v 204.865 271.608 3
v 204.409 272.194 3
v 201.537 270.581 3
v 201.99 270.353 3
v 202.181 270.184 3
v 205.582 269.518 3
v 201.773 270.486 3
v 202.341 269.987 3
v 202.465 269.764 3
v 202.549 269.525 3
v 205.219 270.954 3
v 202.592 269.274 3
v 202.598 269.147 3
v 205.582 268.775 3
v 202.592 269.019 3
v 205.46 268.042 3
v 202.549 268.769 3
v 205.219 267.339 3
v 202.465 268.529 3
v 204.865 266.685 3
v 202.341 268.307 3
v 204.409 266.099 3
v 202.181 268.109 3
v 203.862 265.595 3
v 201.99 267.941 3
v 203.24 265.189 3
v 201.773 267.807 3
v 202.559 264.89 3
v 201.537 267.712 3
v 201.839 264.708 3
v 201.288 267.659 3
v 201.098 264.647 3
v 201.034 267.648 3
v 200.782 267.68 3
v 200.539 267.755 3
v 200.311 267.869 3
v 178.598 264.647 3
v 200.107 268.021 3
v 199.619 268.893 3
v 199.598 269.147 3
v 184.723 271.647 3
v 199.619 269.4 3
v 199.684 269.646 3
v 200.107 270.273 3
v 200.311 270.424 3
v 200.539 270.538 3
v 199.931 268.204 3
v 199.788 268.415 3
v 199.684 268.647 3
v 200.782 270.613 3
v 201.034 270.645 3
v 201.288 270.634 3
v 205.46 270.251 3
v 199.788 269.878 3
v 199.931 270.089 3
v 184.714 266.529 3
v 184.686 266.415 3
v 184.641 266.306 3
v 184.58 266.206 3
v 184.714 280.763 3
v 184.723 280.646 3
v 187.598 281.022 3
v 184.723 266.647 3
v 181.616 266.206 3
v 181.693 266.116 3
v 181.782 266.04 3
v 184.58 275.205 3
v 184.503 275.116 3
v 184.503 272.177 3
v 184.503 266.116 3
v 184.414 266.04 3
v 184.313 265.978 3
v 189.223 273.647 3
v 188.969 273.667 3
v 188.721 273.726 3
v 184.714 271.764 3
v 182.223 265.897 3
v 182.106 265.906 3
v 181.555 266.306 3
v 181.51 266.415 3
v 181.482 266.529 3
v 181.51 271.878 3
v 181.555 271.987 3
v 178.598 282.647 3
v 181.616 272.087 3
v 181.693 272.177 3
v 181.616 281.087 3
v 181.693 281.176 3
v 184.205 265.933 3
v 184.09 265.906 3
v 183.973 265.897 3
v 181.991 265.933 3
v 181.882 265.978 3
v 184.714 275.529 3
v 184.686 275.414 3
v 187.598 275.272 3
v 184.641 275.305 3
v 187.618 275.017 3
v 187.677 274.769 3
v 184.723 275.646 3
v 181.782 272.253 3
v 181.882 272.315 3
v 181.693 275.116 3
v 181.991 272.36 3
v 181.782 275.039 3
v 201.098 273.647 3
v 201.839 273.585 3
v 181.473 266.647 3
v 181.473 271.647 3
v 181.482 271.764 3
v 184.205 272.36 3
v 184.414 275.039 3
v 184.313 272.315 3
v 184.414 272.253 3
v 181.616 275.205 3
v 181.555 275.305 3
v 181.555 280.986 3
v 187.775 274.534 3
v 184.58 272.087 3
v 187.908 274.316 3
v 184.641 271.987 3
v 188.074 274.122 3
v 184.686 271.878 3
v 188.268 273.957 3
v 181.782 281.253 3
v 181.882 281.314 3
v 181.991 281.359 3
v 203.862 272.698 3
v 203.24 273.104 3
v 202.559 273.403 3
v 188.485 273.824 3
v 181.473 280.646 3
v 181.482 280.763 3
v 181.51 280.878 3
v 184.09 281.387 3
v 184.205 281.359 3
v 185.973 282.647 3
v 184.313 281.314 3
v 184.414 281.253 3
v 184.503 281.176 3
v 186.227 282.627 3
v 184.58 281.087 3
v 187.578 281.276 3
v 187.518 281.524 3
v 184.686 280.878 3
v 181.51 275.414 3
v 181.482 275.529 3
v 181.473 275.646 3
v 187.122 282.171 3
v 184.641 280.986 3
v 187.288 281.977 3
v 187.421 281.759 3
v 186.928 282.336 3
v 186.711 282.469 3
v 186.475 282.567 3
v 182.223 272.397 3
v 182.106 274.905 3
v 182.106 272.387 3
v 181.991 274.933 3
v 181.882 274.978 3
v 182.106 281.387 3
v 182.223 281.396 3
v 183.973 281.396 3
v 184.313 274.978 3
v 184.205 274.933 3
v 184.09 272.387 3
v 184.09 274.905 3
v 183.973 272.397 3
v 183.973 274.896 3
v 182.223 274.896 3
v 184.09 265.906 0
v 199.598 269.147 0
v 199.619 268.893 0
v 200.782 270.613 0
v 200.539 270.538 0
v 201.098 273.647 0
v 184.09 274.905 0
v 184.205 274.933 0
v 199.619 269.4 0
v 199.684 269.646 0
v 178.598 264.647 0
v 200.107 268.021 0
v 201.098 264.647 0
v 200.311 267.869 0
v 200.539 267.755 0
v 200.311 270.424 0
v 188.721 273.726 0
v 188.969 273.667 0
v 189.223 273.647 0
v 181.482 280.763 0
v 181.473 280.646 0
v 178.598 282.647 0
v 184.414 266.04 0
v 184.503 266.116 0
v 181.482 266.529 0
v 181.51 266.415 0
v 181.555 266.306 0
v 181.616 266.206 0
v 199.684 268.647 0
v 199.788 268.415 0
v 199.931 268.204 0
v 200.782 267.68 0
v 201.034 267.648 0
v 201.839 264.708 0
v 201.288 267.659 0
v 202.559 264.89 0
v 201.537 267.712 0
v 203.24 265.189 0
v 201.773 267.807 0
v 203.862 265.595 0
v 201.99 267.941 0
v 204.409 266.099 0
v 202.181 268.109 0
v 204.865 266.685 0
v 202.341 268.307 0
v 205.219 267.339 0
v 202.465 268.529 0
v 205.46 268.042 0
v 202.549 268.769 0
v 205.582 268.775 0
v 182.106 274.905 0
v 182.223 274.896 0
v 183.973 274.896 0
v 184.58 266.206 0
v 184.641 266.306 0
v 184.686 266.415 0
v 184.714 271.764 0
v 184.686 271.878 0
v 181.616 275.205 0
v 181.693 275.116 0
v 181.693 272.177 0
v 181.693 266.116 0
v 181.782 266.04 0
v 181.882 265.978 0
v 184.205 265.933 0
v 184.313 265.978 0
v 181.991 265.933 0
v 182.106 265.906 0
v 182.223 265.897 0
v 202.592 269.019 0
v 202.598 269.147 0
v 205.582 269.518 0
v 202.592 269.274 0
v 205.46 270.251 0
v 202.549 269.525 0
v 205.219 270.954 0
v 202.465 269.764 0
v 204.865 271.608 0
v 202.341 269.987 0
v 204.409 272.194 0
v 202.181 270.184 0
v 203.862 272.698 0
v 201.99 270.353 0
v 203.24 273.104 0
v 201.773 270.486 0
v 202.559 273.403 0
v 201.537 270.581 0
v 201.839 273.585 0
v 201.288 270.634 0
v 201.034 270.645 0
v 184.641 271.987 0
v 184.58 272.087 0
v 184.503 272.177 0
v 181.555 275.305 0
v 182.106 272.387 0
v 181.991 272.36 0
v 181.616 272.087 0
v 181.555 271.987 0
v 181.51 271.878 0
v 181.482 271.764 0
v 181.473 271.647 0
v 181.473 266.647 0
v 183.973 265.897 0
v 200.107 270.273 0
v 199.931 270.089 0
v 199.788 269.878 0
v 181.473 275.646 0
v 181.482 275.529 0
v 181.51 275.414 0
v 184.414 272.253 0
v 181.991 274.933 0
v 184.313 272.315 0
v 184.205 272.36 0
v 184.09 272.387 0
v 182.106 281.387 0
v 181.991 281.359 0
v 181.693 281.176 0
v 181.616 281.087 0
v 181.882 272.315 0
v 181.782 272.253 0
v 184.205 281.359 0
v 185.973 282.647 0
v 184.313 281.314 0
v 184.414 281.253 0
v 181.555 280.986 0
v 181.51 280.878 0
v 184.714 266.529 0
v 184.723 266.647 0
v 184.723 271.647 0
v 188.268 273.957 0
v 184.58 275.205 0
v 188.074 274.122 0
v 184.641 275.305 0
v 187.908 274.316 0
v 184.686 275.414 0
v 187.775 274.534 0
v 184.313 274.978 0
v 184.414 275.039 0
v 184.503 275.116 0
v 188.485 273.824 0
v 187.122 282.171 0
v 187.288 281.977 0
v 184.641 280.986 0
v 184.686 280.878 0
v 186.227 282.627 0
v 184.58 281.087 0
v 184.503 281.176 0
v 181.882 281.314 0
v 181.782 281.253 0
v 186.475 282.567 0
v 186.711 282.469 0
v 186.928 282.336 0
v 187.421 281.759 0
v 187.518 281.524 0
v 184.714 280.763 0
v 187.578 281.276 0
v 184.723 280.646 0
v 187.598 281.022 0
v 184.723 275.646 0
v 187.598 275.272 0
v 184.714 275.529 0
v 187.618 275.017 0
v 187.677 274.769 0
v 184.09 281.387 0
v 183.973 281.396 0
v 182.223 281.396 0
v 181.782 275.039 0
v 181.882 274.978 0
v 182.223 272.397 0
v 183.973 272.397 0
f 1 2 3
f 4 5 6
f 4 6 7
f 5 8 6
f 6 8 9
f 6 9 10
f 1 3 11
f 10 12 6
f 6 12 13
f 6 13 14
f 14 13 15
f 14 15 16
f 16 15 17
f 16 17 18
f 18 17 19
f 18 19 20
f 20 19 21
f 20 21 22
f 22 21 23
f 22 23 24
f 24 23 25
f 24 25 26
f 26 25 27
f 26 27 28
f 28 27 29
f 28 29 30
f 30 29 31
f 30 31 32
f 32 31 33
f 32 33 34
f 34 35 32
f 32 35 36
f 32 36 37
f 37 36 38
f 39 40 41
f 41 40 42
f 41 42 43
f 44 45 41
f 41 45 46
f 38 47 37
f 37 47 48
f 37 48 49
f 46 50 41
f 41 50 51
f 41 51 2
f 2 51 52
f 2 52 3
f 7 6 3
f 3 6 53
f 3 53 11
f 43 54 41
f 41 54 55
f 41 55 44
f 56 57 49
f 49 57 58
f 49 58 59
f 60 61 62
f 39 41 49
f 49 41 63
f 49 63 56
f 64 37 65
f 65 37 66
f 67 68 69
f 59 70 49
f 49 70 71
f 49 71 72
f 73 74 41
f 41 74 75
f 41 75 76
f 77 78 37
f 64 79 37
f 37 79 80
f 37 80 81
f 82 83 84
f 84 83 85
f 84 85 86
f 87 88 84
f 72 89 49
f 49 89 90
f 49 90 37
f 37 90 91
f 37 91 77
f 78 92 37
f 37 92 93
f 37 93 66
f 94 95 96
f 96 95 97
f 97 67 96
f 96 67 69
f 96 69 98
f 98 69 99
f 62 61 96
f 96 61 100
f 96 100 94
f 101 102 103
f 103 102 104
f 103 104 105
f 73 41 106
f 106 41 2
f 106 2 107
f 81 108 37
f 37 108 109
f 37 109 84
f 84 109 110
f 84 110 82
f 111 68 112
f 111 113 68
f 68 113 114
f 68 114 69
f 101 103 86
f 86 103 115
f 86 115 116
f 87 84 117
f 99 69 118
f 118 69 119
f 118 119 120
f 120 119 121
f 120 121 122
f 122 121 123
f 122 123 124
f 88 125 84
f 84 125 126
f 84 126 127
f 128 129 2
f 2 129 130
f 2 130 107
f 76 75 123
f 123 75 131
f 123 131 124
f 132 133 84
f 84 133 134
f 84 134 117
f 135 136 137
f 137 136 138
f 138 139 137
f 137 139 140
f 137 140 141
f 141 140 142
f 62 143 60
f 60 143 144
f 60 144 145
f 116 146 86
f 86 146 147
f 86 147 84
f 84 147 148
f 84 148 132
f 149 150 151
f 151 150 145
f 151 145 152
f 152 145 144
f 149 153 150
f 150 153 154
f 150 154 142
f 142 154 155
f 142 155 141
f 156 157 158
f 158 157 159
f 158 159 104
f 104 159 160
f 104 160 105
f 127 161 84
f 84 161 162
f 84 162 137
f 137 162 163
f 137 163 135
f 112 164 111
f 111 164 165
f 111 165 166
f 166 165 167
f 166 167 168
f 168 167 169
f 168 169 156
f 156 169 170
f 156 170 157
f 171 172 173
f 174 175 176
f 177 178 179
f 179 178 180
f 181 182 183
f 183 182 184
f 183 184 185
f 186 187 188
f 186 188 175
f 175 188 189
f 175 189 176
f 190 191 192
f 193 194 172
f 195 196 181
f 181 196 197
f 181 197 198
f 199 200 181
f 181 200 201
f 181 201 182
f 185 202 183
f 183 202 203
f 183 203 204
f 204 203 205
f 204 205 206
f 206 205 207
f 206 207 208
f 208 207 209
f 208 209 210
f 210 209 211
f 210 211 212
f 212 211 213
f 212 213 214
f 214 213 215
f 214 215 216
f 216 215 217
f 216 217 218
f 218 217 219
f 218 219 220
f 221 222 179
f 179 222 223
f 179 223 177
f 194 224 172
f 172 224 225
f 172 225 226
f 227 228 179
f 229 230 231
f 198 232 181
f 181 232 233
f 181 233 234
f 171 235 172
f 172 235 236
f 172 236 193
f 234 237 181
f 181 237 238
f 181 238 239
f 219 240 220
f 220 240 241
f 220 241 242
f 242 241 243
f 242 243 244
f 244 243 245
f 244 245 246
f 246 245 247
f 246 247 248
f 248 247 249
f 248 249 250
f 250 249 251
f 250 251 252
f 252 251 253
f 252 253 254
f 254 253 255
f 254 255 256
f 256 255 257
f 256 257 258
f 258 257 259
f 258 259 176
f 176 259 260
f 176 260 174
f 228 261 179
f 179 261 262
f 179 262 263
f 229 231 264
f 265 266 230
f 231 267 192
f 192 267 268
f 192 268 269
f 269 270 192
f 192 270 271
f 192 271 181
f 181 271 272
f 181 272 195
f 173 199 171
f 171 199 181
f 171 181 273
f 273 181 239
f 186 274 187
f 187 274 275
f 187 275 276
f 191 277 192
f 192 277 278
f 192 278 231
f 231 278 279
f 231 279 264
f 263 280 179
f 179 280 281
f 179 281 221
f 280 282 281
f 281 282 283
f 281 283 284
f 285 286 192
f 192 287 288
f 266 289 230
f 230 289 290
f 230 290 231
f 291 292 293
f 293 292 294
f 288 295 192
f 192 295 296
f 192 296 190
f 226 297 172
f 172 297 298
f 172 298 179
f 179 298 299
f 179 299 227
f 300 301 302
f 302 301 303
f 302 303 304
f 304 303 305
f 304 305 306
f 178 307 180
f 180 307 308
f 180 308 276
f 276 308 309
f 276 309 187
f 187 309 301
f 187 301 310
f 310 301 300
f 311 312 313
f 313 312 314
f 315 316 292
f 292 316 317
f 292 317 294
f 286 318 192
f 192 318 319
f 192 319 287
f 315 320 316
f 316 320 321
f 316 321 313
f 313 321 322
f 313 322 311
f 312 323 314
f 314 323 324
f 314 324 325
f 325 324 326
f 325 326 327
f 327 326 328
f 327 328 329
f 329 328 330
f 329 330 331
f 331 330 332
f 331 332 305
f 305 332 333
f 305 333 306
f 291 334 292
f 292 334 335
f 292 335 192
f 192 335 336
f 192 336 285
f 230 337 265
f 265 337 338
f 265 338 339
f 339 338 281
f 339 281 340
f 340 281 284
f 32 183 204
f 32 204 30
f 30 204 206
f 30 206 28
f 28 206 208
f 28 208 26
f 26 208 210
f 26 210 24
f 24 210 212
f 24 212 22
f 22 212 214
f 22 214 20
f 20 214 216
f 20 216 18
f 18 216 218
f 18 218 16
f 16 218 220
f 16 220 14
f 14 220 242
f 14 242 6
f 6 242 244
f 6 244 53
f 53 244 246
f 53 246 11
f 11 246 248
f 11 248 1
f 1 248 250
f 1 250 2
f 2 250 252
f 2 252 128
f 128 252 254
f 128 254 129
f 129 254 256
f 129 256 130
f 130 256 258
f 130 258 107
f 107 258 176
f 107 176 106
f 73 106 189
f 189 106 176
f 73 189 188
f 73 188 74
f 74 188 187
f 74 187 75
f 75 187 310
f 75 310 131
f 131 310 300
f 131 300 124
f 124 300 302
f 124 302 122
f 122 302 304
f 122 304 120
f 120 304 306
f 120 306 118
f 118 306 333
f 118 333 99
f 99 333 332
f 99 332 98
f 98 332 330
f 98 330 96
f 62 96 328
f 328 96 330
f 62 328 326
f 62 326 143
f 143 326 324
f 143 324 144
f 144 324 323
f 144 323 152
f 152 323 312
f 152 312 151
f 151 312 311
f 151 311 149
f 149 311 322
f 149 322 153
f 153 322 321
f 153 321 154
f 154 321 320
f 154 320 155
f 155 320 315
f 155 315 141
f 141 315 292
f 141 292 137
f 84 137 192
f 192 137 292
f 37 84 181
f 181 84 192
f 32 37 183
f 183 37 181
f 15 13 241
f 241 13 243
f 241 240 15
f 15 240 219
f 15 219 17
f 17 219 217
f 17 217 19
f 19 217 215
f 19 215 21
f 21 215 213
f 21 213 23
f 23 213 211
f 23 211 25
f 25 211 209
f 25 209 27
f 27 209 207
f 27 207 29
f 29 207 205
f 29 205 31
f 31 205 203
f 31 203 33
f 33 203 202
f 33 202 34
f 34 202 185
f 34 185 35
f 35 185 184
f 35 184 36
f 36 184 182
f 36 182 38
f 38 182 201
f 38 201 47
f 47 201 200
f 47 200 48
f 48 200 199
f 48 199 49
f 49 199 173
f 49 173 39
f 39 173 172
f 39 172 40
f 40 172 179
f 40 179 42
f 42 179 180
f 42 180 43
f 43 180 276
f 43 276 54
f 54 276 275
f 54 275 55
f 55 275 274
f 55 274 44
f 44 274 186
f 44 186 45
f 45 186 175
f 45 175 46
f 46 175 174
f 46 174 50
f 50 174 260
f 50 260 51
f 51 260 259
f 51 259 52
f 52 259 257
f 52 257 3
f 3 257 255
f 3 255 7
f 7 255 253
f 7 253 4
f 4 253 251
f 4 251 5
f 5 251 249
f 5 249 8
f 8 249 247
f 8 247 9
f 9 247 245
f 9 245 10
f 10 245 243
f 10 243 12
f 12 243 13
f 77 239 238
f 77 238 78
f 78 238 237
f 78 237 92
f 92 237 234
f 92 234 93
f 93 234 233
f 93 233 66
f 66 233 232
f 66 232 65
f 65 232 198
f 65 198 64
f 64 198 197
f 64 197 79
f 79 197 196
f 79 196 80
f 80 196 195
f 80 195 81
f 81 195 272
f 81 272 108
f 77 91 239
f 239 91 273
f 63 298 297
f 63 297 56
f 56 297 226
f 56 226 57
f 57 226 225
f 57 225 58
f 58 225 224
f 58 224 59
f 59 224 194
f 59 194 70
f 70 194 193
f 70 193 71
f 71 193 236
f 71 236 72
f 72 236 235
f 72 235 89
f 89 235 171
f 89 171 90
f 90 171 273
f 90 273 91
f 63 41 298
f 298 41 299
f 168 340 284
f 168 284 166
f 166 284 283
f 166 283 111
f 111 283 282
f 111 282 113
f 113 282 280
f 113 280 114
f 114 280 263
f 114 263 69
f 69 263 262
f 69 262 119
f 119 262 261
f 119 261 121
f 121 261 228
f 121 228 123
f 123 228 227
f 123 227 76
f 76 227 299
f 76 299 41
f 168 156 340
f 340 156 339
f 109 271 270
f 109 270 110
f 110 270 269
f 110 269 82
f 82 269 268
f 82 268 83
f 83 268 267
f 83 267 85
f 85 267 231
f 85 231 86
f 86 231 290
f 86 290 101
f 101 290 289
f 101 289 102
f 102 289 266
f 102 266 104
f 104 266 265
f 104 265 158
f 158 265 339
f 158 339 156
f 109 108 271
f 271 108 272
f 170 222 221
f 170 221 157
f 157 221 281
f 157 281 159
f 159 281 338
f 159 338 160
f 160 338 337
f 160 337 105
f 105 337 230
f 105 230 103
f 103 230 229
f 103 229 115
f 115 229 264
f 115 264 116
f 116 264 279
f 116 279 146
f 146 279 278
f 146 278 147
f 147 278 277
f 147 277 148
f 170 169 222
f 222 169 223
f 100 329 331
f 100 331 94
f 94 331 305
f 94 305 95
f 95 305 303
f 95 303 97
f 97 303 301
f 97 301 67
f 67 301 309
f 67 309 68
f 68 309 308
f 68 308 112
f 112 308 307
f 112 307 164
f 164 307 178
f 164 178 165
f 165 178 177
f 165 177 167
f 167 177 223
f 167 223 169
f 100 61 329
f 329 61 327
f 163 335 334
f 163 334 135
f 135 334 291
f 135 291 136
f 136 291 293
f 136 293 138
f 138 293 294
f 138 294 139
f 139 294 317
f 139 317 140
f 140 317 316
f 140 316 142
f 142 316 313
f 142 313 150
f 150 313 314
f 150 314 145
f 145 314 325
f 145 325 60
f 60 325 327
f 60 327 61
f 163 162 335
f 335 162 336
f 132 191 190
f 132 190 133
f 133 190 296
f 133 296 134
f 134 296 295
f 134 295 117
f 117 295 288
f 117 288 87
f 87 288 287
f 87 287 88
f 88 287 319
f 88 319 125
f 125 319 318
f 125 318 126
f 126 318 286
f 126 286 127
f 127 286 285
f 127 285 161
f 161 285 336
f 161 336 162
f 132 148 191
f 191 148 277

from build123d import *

# Parameters (mm, degrees)
MODEL_R                 = 1.5
SALIENTE_EXTRUIR1_DEPTH = 3


with BuildPart() as part:
    # Model → Saliente-Extruir1 (new body)
    with BuildSketch(Plane.XY):
        with BuildLine():
            Line((185.972853309, 282.646547335), (178.597853309, 282.646547335))
            Line((178.597853309, 282.646547335), (178.597853309, 264.646547335))
            Line((178.597853309, 264.646547335), (201.097853309, 264.646547335))
            ThreePointArc((201.097853309, 264.646547335), (205.597853309, 269.146547335), (201.097853309, 273.646547335))
            Line((201.097853309, 273.646547335), (189.222853309, 273.646547335))
            ThreePointArc((189.222853309, 273.646547335), (188.07380479, 274.122498816), (187.597853309, 275.271547335))
            Line((187.597853309, 275.271547335), (187.597853309, 281.021547335))
            ThreePointArc((187.597853309, 281.021547335), (187.121901829, 282.170595855), (185.972853309, 282.646547335))
        make_face()
        with Locations((201.097853309, 269.146547335)):
            Circle(MODEL_R, mode=Mode.SUBTRACT)
        with BuildLine():
            Line((182.222853309, 265.896547335), (183.972853309, 265.896547335))
            ThreePointArc((183.972853309, 265.896547335), (184.503183395, 266.116217249), (184.722853309, 266.646547335))
            Line((184.722853309, 266.646547335), (184.722853309, 271.646547335))
            ThreePointArc((184.722853309, 271.646547335), (184.503183395, 272.176877421), (183.972853309, 272.396547335))
            Line((183.972853309, 272.396547335), (182.222853309, 272.396547335))
            ThreePointArc((182.222853309, 272.396547335), (181.692523223, 272.176877421), (181.472853309, 271.646547335))
            Line((181.472853309, 271.646547335), (181.472853309, 266.646547335))
            ThreePointArc((181.472853309, 266.646547335), (181.692523223, 266.116217249), (182.222853309, 265.896547335))
        make_face(mode=Mode.SUBTRACT)
        with BuildLine():
            Line((182.222853309, 274.895968764), (183.972853309, 274.895968764))
            ThreePointArc((183.972853309, 274.895968764), (184.503183395, 275.115638678), (184.722853309, 275.645968764))
            Line((184.722853309, 275.645968764), (184.722853309, 280.645968764))
            ThreePointArc((184.722853309, 280.645968764), (184.503183395, 281.17629885), (183.972853309, 281.395968764))
            Line((183.972853309, 281.395968764), (182.222853309, 281.395968764))
            ThreePointArc((182.222853309, 281.395968764), (181.692523223, 281.17629885), (181.472853309, 280.645968764))
            Line((181.472853309, 280.645968764), (181.472853309, 275.645968764))
            ThreePointArc((181.472853309, 275.645968764), (181.692523223, 275.115638678), (182.222853309, 274.895968764))
        make_face(mode=Mode.SUBTRACT)
    extrude(amount=SALIENTE_EXTRUIR1_DEPTH)


solid = part.part
